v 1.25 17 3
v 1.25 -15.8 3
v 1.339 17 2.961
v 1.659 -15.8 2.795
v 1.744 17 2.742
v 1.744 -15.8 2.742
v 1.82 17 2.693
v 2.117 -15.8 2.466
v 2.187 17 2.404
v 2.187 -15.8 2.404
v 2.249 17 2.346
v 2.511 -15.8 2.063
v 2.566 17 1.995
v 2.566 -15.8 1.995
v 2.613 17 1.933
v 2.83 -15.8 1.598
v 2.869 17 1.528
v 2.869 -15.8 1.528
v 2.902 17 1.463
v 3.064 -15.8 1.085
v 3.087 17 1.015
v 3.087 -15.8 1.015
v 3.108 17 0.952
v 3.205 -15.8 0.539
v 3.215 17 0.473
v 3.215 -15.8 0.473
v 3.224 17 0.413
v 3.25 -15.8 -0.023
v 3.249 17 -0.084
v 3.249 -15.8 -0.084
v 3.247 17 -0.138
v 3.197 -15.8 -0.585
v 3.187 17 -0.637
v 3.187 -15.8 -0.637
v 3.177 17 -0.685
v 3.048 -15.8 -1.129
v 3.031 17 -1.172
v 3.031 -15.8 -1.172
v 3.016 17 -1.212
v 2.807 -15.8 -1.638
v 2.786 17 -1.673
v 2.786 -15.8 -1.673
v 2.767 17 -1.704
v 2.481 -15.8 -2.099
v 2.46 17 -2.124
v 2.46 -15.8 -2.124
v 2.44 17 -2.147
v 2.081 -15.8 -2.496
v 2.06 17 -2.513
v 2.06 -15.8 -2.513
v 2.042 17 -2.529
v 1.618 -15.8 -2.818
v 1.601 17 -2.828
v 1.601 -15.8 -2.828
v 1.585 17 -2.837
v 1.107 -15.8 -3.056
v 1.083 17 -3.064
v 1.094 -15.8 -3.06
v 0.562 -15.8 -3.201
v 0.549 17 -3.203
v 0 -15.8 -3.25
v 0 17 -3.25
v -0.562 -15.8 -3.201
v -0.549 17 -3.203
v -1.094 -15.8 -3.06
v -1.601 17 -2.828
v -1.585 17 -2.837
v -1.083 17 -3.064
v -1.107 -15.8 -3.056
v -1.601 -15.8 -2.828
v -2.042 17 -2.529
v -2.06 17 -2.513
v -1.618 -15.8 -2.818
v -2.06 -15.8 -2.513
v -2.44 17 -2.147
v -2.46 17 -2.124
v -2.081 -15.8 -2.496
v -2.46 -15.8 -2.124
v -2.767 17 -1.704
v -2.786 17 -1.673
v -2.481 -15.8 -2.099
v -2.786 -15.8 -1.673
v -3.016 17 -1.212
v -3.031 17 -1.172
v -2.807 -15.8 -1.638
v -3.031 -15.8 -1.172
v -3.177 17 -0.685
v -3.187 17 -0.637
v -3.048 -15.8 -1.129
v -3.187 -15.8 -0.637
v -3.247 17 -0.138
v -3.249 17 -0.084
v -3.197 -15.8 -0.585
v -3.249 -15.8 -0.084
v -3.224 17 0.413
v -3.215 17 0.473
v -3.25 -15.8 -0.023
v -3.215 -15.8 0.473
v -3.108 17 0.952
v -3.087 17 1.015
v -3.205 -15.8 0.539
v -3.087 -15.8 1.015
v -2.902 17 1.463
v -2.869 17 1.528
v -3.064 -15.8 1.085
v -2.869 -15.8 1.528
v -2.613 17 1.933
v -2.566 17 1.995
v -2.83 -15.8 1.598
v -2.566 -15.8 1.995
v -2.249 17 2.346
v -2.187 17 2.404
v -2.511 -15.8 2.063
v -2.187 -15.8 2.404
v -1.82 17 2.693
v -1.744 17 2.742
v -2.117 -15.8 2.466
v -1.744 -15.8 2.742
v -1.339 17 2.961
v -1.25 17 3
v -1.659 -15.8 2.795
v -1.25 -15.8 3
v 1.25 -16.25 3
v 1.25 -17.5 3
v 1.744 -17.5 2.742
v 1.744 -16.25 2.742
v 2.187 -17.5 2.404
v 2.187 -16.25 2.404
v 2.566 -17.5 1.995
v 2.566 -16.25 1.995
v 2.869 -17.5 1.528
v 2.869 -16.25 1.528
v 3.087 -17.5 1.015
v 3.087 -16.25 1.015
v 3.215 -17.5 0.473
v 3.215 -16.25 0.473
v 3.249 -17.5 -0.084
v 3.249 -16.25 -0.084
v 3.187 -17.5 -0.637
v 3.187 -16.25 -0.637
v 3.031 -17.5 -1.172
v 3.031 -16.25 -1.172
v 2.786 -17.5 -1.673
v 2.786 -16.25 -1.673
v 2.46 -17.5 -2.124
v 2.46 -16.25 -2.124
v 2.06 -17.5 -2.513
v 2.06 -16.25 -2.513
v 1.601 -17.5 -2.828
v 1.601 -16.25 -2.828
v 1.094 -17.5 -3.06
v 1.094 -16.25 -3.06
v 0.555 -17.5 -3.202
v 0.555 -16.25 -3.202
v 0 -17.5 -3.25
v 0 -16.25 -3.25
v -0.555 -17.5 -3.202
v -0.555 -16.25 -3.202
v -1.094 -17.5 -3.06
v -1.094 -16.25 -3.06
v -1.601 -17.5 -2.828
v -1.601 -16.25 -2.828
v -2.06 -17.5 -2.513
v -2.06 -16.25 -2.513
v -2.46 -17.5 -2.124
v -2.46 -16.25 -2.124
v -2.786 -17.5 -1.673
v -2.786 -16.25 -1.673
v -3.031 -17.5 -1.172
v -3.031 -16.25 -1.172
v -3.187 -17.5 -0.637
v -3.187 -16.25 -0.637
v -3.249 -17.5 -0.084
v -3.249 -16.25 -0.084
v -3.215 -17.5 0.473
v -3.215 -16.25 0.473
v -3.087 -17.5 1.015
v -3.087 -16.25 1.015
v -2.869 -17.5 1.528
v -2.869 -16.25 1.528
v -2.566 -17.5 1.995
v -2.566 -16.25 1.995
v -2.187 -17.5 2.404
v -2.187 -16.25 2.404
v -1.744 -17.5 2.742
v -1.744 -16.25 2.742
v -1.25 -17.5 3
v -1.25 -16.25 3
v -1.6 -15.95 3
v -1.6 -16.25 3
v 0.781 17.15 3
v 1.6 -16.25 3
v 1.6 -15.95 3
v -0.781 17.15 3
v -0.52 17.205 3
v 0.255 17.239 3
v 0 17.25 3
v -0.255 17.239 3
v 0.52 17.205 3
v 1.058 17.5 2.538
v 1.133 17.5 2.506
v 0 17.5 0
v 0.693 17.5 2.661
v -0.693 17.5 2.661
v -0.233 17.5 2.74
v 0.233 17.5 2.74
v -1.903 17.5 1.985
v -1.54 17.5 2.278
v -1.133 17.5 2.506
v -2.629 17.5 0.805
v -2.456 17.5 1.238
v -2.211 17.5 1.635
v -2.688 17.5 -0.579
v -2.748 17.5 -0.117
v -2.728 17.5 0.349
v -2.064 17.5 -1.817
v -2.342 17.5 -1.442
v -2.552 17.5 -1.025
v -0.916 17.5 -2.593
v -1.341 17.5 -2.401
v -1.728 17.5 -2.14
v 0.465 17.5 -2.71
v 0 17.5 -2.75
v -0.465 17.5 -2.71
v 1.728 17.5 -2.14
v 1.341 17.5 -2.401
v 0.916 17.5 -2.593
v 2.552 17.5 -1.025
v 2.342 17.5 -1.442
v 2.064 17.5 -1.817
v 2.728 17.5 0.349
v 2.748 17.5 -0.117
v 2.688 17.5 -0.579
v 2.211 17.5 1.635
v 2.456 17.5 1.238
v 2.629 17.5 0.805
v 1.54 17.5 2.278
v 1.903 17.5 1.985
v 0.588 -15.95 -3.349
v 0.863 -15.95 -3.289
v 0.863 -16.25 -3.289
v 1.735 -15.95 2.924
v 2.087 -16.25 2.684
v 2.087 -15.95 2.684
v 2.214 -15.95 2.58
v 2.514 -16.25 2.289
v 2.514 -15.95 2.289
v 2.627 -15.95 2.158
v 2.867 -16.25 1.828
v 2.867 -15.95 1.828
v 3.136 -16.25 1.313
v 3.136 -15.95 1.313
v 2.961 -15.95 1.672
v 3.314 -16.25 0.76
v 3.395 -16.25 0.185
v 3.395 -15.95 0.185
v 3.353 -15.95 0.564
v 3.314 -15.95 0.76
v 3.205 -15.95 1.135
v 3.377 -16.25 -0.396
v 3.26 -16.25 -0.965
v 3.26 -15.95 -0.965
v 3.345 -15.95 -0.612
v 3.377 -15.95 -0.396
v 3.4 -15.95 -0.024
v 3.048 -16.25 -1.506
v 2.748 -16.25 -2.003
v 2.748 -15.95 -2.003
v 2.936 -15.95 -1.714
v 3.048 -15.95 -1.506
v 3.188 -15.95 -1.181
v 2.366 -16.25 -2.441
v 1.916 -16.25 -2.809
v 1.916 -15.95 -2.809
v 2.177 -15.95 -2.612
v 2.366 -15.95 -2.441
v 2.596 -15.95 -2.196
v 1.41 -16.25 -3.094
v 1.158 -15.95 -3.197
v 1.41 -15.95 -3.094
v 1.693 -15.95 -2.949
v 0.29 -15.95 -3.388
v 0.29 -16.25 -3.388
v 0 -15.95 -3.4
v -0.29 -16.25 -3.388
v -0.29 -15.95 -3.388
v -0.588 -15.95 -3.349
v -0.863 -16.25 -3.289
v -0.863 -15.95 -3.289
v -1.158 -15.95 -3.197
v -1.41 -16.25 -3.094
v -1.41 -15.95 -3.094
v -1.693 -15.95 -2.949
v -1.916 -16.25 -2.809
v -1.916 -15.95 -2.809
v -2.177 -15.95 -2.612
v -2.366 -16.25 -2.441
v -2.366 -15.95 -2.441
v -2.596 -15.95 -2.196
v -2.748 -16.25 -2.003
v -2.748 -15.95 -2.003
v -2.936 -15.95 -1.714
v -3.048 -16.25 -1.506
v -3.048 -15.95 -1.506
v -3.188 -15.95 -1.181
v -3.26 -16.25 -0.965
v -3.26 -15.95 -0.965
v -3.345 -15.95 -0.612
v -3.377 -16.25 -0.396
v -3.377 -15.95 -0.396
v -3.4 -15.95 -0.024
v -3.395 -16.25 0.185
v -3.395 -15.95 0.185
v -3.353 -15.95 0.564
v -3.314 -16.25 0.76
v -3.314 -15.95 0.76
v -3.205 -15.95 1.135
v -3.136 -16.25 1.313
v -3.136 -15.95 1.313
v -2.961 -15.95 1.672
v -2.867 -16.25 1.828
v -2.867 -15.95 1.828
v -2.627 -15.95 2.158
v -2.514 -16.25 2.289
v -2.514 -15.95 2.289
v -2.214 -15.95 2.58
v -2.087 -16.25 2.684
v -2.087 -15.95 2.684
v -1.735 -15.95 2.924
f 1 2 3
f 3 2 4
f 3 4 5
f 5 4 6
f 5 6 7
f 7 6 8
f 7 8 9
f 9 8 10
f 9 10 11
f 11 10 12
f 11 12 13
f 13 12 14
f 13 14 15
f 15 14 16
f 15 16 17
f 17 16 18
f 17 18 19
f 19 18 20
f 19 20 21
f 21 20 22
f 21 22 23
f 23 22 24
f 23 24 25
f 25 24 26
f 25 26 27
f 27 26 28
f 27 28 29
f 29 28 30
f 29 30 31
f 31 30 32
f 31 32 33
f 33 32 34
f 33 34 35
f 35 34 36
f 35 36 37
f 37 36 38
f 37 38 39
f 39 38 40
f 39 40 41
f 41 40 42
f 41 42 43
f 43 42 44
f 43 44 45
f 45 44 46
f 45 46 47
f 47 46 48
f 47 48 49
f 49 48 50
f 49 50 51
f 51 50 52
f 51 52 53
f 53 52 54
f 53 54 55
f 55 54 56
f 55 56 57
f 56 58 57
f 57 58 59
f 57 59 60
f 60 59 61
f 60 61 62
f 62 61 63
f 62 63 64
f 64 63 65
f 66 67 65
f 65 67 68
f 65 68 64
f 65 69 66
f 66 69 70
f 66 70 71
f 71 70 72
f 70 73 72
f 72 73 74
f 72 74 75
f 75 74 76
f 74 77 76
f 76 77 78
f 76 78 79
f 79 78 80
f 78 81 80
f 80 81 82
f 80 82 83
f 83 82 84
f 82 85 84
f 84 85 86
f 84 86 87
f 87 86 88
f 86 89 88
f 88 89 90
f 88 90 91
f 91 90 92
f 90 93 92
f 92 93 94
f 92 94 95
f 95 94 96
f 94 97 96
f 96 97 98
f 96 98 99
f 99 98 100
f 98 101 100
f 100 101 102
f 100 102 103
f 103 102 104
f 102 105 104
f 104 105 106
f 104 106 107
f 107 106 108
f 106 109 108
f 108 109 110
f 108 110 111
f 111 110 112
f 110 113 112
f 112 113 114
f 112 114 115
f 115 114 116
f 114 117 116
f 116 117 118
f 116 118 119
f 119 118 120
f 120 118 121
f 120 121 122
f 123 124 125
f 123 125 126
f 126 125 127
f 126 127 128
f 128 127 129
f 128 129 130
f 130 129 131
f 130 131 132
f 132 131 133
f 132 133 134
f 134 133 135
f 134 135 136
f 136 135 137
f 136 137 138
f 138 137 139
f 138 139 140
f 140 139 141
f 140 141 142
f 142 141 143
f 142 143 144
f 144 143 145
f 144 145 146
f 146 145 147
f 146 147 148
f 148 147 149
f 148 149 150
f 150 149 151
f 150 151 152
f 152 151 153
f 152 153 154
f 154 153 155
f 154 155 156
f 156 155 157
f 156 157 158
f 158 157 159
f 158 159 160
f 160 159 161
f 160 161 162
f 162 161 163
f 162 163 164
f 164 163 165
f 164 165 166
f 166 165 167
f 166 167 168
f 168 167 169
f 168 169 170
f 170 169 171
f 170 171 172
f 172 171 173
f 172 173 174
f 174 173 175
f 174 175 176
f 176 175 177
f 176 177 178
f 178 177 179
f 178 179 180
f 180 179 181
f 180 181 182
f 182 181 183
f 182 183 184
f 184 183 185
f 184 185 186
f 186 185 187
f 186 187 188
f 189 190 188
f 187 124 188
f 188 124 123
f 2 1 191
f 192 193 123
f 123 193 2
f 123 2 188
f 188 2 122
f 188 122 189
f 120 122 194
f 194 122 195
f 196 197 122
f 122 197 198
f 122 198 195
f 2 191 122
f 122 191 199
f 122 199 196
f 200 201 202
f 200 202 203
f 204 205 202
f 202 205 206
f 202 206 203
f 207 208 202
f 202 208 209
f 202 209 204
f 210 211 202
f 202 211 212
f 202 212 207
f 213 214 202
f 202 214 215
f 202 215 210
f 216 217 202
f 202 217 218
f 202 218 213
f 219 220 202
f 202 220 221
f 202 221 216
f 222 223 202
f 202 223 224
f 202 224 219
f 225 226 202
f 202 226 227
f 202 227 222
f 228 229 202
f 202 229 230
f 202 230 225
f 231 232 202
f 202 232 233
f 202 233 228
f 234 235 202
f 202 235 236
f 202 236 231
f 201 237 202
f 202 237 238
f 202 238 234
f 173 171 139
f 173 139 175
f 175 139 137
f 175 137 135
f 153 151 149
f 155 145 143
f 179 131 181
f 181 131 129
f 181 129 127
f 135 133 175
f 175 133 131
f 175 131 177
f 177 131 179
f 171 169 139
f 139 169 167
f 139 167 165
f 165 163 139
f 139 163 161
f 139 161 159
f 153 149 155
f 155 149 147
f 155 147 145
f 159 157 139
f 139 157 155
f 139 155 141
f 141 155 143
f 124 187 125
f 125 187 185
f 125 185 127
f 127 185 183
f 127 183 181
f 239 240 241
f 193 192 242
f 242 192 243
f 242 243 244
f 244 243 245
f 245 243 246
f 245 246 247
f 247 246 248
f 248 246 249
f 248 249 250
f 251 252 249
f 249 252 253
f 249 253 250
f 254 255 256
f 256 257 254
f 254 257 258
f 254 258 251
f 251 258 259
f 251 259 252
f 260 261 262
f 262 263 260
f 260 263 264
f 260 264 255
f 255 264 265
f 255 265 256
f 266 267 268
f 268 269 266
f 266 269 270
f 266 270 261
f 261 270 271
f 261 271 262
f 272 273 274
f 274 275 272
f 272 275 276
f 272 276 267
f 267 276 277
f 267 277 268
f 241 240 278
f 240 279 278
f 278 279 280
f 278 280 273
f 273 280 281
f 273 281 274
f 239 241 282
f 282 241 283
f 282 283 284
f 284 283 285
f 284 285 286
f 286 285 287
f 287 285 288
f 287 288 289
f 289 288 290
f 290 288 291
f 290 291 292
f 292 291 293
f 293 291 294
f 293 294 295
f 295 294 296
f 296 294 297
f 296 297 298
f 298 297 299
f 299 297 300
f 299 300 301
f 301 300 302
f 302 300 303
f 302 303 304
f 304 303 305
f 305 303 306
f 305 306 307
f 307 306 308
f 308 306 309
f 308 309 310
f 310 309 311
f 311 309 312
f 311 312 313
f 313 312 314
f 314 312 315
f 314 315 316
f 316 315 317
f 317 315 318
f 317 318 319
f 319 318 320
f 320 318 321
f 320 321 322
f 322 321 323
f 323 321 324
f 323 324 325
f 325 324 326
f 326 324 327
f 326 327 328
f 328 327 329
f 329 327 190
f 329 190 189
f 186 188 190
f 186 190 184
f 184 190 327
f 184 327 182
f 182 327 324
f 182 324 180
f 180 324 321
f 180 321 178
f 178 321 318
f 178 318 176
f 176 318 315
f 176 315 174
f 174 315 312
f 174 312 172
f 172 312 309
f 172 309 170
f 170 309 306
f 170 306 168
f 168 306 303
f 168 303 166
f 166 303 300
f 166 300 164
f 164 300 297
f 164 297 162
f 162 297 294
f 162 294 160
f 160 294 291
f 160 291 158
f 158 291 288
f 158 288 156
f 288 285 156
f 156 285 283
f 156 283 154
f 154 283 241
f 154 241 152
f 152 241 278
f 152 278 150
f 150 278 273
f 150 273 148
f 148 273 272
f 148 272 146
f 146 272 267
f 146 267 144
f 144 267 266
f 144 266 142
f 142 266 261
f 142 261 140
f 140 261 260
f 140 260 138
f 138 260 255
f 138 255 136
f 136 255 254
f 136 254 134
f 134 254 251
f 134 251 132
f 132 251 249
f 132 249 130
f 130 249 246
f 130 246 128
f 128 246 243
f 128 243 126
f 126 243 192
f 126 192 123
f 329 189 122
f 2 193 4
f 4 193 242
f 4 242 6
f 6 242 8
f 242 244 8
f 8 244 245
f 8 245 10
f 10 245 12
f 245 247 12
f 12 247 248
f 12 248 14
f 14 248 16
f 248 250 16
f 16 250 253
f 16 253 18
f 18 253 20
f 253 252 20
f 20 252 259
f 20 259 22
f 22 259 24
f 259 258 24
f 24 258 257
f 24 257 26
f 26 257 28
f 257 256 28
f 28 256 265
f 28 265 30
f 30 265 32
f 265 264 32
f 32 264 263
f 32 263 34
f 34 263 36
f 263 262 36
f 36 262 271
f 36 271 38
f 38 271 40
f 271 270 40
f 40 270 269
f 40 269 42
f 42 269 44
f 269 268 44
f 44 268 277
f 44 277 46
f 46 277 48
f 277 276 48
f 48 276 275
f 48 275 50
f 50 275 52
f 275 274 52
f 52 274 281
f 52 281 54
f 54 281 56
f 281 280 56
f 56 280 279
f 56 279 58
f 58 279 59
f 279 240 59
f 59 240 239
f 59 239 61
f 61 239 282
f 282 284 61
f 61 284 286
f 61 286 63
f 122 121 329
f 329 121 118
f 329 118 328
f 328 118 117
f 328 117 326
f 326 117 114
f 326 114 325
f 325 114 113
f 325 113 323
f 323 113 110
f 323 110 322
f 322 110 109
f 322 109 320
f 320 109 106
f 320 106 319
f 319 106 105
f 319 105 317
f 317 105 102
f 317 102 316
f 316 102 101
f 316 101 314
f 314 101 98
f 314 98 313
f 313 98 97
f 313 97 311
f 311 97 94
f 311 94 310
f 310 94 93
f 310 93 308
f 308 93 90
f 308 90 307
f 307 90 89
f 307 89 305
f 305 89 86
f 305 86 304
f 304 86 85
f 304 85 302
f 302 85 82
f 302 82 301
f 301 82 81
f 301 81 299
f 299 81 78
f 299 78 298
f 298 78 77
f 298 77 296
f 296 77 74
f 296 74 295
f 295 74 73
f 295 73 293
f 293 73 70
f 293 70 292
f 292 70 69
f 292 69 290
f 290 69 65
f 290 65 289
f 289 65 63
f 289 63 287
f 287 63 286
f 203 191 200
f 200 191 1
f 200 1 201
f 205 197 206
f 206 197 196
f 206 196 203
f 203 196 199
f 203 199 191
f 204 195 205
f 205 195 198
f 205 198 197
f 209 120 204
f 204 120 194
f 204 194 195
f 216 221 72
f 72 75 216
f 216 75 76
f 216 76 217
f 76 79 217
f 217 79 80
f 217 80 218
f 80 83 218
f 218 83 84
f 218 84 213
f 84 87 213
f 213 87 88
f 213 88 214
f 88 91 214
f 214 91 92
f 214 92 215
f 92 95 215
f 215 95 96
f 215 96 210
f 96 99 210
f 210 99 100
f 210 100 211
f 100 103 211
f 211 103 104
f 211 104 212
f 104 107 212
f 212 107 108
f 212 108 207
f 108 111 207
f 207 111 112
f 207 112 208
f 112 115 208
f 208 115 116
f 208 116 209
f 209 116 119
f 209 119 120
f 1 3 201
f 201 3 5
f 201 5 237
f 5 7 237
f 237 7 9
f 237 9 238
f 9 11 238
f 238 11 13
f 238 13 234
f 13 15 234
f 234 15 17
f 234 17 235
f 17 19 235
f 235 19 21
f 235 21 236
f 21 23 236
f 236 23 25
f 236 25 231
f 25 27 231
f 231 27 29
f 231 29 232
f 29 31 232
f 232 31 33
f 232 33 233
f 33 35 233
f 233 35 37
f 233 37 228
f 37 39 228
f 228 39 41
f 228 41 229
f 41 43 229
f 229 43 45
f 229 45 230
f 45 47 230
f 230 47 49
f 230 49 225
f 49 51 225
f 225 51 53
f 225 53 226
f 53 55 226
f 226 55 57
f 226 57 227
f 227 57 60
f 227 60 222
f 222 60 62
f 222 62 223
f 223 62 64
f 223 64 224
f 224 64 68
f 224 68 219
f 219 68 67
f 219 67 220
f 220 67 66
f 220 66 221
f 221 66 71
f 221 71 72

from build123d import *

# Parameters (mm, degrees)
BOSS_EXTRUDE1_DEPTH = 17.5
BOSS_EXTRUDE2_START = -1.75
BOSS_EXTRUDE2_DEPTH = 0.5
CHAMFER1_SIZE       = 0.2


with BuildPart() as part:
    # Sketch1 → Boss-Extrude1 (new, symmetric)
    with BuildSketch(Plane(origin=(0, 0, 0), x_dir=(1, 0, 0), z_dir=(0, 1, 0))):
        with BuildLine():
            Line((-1.25, -3), (1.25, -3))
            ThreePointArc((1.25, -3), (0, 3.25), (-1.25, -3))
        make_face()
    extrude(amount=BOSS_EXTRUDE1_DEPTH, both=True)

    # Sketch2 → Boss-Extrude2 (add)
    with BuildSketch(Plane.XZ.offset(17.5).offset(BOSS_EXTRUDE2_START)):
        with BuildLine():
            Line((-1.25, 3), (-1.6, 3))
            ThreePointArc((-1.6, 3), (0, -3.4), (1.6, 3))
            Line((1.6, 3), (1.25, 3))
            ThreePointArc((1.25, 3), (0, -3.25), (-1.25, 3))
        make_face()
    extrude(amount=BOSS_EXTRUDE2_DEPTH)

    # Chamfer1
    # the kernel refuses this chamfer: 0.2 mm, written as the material it takes off along each edge
    with BuildSketch(Plane(origin=(0, -15.75, 0), x_dir=(-0.3315887986155938, 0, 0.9434240131736458), z_dir=(0.9434240131736458, 0, 0.3315887986155938))) as chamfer1_piece_1_section:
        Polygon((3.4, CHAMFER1_SIZE), (3.4 - CHAMFER1_SIZE, 0), (3.4, 0), align=None)
    chamfer1_piece_1 = revolve(axis=Axis((0, -15.75, 0), (0, -1, 0)), revolution_arc=321.269525005, mode=Mode.PRIVATE)
    chamfer1_piece_1 = chamfer1_piece_1 - Plane(origin=(0, -15.75, 0), x_dir=(0.38461538461538497, 0, 0.923076923076923), z_dir=(0, 1, 0)) * Cylinder(3.25, 14, mode=Mode.PRIVATE)
    add(chamfer1_piece_1, mode=Mode.SUBTRACT)

    # Chamfer2: read off the stored shape, not the designer's step
    # Chamfer2 outline → Chamfer2 (revolve, cut)
    with BuildSketch(Plane.XY):
        Polygon((3.25, 17.5), (2.75, 17.5), (3.25, 17), align=None)
    revolve(axis=Axis((0, 0, 0), (0, 1, 0)), mode=Mode.SUBTRACT)


solid = part.part
